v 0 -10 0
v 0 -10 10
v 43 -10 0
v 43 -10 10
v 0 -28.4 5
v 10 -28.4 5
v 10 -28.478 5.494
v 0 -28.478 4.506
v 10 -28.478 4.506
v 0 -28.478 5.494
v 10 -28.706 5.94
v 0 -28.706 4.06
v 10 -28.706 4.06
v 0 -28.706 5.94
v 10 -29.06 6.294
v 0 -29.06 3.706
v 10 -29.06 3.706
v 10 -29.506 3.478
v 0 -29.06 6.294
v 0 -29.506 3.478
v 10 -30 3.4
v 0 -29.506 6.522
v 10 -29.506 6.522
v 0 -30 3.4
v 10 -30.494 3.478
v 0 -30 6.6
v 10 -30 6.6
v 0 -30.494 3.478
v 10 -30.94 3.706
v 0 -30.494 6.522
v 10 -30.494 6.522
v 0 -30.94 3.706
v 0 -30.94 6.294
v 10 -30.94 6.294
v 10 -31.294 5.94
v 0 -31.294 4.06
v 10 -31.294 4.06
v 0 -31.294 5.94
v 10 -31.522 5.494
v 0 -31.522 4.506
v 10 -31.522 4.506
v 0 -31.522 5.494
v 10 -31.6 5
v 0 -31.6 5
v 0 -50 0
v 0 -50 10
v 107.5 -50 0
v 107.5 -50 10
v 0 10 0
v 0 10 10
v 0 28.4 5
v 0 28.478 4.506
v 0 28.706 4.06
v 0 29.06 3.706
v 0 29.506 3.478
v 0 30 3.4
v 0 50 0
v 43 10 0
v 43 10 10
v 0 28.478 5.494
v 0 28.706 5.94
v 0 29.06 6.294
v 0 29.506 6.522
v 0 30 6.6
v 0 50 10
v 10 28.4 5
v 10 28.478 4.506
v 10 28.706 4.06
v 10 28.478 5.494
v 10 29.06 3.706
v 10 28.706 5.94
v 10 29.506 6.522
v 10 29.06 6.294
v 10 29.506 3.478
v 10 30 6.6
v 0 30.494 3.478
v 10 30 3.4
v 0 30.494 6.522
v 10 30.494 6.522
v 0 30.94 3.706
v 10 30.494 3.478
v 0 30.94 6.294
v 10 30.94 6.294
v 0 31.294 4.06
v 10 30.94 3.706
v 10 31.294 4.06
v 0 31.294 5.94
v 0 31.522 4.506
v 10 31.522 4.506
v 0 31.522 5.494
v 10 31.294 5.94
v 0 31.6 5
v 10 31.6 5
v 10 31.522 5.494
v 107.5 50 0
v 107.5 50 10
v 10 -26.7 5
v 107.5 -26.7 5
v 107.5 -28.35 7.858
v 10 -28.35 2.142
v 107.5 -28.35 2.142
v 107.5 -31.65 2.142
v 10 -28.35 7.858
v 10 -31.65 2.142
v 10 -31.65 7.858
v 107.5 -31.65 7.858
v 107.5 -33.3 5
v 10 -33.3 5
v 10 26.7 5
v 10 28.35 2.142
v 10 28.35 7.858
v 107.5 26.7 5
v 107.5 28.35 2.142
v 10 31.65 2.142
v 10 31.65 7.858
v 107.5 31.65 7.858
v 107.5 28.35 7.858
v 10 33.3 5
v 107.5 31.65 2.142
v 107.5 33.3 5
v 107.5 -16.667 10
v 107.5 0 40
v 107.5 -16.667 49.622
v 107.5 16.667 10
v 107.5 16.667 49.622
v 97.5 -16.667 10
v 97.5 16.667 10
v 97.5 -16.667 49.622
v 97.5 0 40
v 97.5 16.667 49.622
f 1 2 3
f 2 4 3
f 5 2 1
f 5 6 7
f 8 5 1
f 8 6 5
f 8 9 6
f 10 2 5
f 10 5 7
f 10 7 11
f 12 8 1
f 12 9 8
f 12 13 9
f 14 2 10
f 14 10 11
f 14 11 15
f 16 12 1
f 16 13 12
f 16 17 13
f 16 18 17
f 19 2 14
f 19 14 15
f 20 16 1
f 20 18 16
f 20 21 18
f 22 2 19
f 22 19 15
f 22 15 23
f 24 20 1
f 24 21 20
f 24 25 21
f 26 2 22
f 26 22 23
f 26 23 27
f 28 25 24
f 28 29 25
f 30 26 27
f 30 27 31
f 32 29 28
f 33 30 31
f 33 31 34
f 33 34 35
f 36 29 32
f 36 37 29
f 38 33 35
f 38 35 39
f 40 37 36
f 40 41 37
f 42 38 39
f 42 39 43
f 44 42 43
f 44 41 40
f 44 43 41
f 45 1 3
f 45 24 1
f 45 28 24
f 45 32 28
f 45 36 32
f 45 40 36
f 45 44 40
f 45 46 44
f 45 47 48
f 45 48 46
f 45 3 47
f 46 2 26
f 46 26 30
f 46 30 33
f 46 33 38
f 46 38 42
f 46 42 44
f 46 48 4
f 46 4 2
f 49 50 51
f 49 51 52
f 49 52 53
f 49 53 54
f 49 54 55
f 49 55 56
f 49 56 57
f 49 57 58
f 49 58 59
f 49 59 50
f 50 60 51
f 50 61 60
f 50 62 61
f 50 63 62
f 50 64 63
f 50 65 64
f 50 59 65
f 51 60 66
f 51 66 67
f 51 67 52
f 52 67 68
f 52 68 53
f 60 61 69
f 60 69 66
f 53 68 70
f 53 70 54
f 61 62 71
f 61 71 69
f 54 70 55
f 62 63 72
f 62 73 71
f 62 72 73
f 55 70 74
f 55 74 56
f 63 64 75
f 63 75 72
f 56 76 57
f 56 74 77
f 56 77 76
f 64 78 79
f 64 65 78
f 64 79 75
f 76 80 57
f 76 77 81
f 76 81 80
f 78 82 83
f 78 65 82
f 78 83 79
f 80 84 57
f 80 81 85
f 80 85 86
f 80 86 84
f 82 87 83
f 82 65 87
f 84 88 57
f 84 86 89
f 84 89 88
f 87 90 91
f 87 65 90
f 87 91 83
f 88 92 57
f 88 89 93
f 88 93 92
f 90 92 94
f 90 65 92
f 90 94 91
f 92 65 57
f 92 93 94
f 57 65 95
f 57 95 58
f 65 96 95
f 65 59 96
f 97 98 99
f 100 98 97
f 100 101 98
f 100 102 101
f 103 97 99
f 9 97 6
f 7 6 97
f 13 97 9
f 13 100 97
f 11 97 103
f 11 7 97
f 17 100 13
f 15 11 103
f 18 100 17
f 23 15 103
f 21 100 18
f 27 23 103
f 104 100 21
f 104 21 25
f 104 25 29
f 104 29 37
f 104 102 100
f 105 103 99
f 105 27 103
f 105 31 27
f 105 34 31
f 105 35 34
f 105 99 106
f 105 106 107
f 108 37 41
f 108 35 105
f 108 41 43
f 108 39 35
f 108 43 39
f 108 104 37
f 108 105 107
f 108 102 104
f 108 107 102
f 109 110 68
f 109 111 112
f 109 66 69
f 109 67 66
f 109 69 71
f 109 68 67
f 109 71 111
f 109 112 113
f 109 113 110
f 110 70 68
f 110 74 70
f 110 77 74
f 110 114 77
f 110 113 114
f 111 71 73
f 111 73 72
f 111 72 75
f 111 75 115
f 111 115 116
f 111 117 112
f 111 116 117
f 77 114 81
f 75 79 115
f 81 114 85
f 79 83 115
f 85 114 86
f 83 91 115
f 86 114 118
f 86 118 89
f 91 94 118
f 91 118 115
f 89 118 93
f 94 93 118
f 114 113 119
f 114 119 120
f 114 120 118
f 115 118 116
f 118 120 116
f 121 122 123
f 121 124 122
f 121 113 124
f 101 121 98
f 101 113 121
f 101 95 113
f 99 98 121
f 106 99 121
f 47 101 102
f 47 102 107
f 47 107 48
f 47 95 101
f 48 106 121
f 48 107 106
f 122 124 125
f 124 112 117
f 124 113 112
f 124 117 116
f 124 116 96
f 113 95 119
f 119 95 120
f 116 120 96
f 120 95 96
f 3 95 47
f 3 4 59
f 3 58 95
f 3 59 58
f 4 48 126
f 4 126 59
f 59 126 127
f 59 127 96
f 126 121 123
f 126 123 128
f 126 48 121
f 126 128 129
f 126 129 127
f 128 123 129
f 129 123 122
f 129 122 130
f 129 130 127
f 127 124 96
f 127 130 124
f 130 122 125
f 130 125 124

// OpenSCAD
// file: ../lib/naca4.scad
// Naca4.scad - library for parametric airfoils of 4 digit NACA series
// Code: Rudolf Huttary, Berlin
// June 2015
// commercial use prohibited


// general use: for more examples refer to sampler.scad
// naca = naca digits or 3el vector  (default = 12 or [0, 0, .12])
// L    = chord length [mm]      (default= 100)
// N    = # sample points        (default= 81)
// h    = height [mm]            (default= 1)
// open = close at the thin end? (default = true)
// two equivalent example calls
 airfoil(naca = 2408, L = 60, N=1001, h = 30, open = false);
// airfoil(naca = [.2, .4, .32], L = 60, N=1001, h = 30, open = false);

module help()
{
  echo(str("\n\nList of signatures in lib:\n=================\n",
  "module airfoil(naca=2412, L = 100, N = 81, h = 1, open = false) - renders airfoil object\n",
  "module airfoil(naca=[.2, .4, .12], L = 100, N = 81, h = 1, open = false) - renders airfoil object using percentage for camber,  camber distance and thicknes\n",
  "function airfoil_data(naca=12, L = 100, N = 81, open = false)\n",
  "=================\n"));
}

help();
// this is the object
module airfoil(naca=12, L = 100, N = 81, h = 1, open = false)
{
  linear_extrude(height = h)
  polygon(points = airfoil_data(naca, L, N, open));
}

module hollow_airfoil(naca=12, L = 100, N = 81, h = 1, open = false, wall_thickness = 1)
{
    if (open){
        linear_extrude(height = h)

        if (wall_thickness>0){
            difference(){
                polygon(points = airfoil_data(naca, L, N, false));
                offset(delta = - wall_thickness, chamfer = false) polygon(points = airfoil_data(naca, L, N, open = false));
            }
        }
        else{
            difference(){
                offset(delta = - wall_thickness, chamfer = false) polygon(points = airfoil_data(naca, L, N, open = false));
                polygon(points = airfoil_data(naca, L, N, false));
            }
        }
    }
    else{

        linear_extrude(height = abs(wall_thickness))
            polygon(points = airfoil_data(naca, L, N, false));

        linear_extrude(height = h)
            difference(){
                polygon(points = airfoil_data(naca, L, N, open));
                offset(delta = - wall_thickness) polygon(points = airfoil_data(naca, L, N, open = false));
            }

        translate([0,0, h - wall_thickness])
            linear_extrude(height = abs(wall_thickness))
                polygon(points = airfoil_data(naca, L, N, false));

    }
}


// this is the main function providing the airfoil data
function airfoil_data(naca=12, L = 100, N = 81, open = false) =
  let(Na = len(naca)!=3?NACA(naca):naca)
  let(A = [.2969, -0.126, -.3516, .2843, open?-0.1015:-0.1036])
  [for (b=[-180:360/(N):179.99])
    let (x = (1-cos(b))/2)
    let(yt = sign(b)*Na[2]/.2*(A*[sqrt(x), x, x*x, x*x*x, x*x*x*x]))
    Na[0]==0?L*[x, yt]:L*camber(x, yt, Na[0], Na[1], sign(b))];


function trailing_edge_angle(naca=12, open = false) =
  let(Na = len(naca)!=3?NACA(naca):naca)
  let(A = [.2969, -0.126, -.3516, .2843, open?-0.1015:-0.1036])
  let (x =0.999)  // set x near to airfoil trailing edge
  let(yt = Na[2]/.2*(A*[sqrt(x), x, x*x, x*x*x, x*x*x*x])) // calculate distance from x-axis at previously set position
  atan2(yt,1-x);  // calculate angle of triangle between end of airfoil. The triange height corresponds to previously calculated distance from x-axis

function surface_angle(x = 0.5, naca=12, open = false) =
  let(Na = len(naca)!=3?NACA(naca):naca)
  let(A = [0.2969, -0.126, -0.3516, 0.2843, open?-0.1015:-0.1036])
  let(dy = Na[2]/0.2*(A*[(1/2)*(1/sqrt(x)), 1, 2*x, 3*x*x, 4*x*x*x])) // calculate derivative of airfoil function at the x point
  atan(dy);  // calculate  the angle from function derivative

function surface_distance(x = 0.5, naca=12, open = false) =
  let(Na = len(naca)!=3?NACA(naca):naca)
  let(A = [0.2969, -0.126, -0.3516, 0.2843, open?-0.1015:-0.1036])
  Na[2]/.2*(A*[sqrt(x), x, x*x, x*x*x, x*x*x*x]); // calculate distance from x-axis at previously set position

// helper functions
function NACA(naca) =
  let (M = floor(naca/1000))
  let (P = floor((naca-M*1000)/100))
  [M/100, P/10, floor(naca-M*1000-P*100)/100];

function camber(x, y, M, P, upper) =
  let(yc = (x<P)?M/P/P*(2*P*x-x*x): M/(1-P)/(1-P)*(1 - 2*P + 2*P*x -x*x))
  let(dy = (x<P)?2*M/P/P*(P-x):2*M/(1-P)/(1-P)*(P-x))
  let(th = atan(dy))
  [upper ? x - y*sin(th):x + y*sin(th), upper ? yc + y*cos(th):yc - y*cos(th)];
// file: ../../parameters.scad
global_clearance = 0.5;


//Main tube diameter - hole [mm]
main_tube_outer_diameter = 25.4;
main_tube_inner_diameter = 23.05;

// Nastavení parametrů rotoru

gliding_aggle = 14;         // tenhle úhel by se zřejmě v budoucnu měl počítat z požadované klouzavosti.

rotor_blade_AOA = 1.5;      // nastavení úhlu náběhu rotorového listu
rotor_blade_length = 970;   // délka rotorového listu
rotor_blade_depth = 50;     // hloubka rotorového listu
rotor_height = 180;         // výška otočného kloubu rotoru nad hlavní trubkou vírníku (odhad)
rotor_blades_count = 2;
rotor_delta_angle = 12;


rotor_head_width =  21.4;    //Rozměr 1 v nákresu
pilon_wall_thickness = 4.2;  // Rozměr 2 v nákresu
horizontal_screw_distance = 14.5;   // Rozměr 4 v nákresu
vertical_screw_distance = 12;       // rozměr 5 v nkresu

rotorhead_wall_thickness = 2; // sila tistenych dilu


bearing_outer_diameter = 7.1;    // Rozměr B1 v nákresu s přídavkem na toleranci otvoru
bearing_thickness = 3.1;        // Rozměr B2 v nákresu
bearing_shaft_length = 19.5;    // Rozměr B3 v nákresu


// nastavení parametrů motoru

engine_angle = -8;
engine_diameter = 55;
engine_offset = 55;

engine_screws_radius = 15;
engine_holes_radius = (24 + 44)/4;
engine_shatf_hole_diameter = 13;

// screw length step - minimum difference in length between two types of screws
basic_screw_length = 5;

//Screw diameter and nut for M5 [mm]
M5_screw_diameter=5.5;
M5_head_height = 5;
M5_head_diameter = 13+0.5;
M5_nut_height = 4.5;
M5_nut_diameter = 9.4;
M5_nut_pocket = 8.4;

//Screw diameter and nut for M4 [mm]
M4_screw_diameter=4.5;
M4_screw_head_height = 4;
M4_nut_height = 3.2;
M4_nut_diameter = 8.4;
M4_nut_pocket = 7.5;

//Screw diameter and nut for M3 [mm]
M3_screw_diameter = 3.2;
M3_nut_height = 2.7;
M3_nut_diameter = 6.6;
M3_screw_head_height = 3;
M3_nut_pocket = 5.6;


//Screw diameter and nut for M2,5 [mm]
M2_5_screw_diameter = 2.7;
M2_5_nut_height = 2.3;
M2_5_nut_diameter = 6;
M2_5_nut_pocket = 5.1;

//Screw diameter and nut for M2 [mm]
M2_screw_diameter = 2.2;
M2_nut_height = 1.8;
M2_nut_diameter = 4.5;
M2_nut_pocket = 3.95;



//šroub servo
Servo_screw = 1.5;
Servo_nut_height = 1;
Servo_nut_diameter = 2.7;



//center_of_gravity_position = [main_pilon_position - tan(gliding_aggle)*rotor_height, 0, 0];


////podzvozek

radius_undercarriage = 25;
vzdalenost_x = tan(20) * 131;
vzdalenost_y = (131 - radius_undercarriage)/tan(79);
uhel_y = 90 - 20;
uhel_x = 90 - 79;

maximum_printable_size = 150;


////Pitotova trubice
Pitot_tube_diameter = 4.02 + 1;
Distance_hole_from_tube = 11.92;  //vzdálenost otvoru pro připevnění od samotné trubičky
// main file
include <../../parameters.scad>
use <../888_1009.scad>

888_1009_base_half();
